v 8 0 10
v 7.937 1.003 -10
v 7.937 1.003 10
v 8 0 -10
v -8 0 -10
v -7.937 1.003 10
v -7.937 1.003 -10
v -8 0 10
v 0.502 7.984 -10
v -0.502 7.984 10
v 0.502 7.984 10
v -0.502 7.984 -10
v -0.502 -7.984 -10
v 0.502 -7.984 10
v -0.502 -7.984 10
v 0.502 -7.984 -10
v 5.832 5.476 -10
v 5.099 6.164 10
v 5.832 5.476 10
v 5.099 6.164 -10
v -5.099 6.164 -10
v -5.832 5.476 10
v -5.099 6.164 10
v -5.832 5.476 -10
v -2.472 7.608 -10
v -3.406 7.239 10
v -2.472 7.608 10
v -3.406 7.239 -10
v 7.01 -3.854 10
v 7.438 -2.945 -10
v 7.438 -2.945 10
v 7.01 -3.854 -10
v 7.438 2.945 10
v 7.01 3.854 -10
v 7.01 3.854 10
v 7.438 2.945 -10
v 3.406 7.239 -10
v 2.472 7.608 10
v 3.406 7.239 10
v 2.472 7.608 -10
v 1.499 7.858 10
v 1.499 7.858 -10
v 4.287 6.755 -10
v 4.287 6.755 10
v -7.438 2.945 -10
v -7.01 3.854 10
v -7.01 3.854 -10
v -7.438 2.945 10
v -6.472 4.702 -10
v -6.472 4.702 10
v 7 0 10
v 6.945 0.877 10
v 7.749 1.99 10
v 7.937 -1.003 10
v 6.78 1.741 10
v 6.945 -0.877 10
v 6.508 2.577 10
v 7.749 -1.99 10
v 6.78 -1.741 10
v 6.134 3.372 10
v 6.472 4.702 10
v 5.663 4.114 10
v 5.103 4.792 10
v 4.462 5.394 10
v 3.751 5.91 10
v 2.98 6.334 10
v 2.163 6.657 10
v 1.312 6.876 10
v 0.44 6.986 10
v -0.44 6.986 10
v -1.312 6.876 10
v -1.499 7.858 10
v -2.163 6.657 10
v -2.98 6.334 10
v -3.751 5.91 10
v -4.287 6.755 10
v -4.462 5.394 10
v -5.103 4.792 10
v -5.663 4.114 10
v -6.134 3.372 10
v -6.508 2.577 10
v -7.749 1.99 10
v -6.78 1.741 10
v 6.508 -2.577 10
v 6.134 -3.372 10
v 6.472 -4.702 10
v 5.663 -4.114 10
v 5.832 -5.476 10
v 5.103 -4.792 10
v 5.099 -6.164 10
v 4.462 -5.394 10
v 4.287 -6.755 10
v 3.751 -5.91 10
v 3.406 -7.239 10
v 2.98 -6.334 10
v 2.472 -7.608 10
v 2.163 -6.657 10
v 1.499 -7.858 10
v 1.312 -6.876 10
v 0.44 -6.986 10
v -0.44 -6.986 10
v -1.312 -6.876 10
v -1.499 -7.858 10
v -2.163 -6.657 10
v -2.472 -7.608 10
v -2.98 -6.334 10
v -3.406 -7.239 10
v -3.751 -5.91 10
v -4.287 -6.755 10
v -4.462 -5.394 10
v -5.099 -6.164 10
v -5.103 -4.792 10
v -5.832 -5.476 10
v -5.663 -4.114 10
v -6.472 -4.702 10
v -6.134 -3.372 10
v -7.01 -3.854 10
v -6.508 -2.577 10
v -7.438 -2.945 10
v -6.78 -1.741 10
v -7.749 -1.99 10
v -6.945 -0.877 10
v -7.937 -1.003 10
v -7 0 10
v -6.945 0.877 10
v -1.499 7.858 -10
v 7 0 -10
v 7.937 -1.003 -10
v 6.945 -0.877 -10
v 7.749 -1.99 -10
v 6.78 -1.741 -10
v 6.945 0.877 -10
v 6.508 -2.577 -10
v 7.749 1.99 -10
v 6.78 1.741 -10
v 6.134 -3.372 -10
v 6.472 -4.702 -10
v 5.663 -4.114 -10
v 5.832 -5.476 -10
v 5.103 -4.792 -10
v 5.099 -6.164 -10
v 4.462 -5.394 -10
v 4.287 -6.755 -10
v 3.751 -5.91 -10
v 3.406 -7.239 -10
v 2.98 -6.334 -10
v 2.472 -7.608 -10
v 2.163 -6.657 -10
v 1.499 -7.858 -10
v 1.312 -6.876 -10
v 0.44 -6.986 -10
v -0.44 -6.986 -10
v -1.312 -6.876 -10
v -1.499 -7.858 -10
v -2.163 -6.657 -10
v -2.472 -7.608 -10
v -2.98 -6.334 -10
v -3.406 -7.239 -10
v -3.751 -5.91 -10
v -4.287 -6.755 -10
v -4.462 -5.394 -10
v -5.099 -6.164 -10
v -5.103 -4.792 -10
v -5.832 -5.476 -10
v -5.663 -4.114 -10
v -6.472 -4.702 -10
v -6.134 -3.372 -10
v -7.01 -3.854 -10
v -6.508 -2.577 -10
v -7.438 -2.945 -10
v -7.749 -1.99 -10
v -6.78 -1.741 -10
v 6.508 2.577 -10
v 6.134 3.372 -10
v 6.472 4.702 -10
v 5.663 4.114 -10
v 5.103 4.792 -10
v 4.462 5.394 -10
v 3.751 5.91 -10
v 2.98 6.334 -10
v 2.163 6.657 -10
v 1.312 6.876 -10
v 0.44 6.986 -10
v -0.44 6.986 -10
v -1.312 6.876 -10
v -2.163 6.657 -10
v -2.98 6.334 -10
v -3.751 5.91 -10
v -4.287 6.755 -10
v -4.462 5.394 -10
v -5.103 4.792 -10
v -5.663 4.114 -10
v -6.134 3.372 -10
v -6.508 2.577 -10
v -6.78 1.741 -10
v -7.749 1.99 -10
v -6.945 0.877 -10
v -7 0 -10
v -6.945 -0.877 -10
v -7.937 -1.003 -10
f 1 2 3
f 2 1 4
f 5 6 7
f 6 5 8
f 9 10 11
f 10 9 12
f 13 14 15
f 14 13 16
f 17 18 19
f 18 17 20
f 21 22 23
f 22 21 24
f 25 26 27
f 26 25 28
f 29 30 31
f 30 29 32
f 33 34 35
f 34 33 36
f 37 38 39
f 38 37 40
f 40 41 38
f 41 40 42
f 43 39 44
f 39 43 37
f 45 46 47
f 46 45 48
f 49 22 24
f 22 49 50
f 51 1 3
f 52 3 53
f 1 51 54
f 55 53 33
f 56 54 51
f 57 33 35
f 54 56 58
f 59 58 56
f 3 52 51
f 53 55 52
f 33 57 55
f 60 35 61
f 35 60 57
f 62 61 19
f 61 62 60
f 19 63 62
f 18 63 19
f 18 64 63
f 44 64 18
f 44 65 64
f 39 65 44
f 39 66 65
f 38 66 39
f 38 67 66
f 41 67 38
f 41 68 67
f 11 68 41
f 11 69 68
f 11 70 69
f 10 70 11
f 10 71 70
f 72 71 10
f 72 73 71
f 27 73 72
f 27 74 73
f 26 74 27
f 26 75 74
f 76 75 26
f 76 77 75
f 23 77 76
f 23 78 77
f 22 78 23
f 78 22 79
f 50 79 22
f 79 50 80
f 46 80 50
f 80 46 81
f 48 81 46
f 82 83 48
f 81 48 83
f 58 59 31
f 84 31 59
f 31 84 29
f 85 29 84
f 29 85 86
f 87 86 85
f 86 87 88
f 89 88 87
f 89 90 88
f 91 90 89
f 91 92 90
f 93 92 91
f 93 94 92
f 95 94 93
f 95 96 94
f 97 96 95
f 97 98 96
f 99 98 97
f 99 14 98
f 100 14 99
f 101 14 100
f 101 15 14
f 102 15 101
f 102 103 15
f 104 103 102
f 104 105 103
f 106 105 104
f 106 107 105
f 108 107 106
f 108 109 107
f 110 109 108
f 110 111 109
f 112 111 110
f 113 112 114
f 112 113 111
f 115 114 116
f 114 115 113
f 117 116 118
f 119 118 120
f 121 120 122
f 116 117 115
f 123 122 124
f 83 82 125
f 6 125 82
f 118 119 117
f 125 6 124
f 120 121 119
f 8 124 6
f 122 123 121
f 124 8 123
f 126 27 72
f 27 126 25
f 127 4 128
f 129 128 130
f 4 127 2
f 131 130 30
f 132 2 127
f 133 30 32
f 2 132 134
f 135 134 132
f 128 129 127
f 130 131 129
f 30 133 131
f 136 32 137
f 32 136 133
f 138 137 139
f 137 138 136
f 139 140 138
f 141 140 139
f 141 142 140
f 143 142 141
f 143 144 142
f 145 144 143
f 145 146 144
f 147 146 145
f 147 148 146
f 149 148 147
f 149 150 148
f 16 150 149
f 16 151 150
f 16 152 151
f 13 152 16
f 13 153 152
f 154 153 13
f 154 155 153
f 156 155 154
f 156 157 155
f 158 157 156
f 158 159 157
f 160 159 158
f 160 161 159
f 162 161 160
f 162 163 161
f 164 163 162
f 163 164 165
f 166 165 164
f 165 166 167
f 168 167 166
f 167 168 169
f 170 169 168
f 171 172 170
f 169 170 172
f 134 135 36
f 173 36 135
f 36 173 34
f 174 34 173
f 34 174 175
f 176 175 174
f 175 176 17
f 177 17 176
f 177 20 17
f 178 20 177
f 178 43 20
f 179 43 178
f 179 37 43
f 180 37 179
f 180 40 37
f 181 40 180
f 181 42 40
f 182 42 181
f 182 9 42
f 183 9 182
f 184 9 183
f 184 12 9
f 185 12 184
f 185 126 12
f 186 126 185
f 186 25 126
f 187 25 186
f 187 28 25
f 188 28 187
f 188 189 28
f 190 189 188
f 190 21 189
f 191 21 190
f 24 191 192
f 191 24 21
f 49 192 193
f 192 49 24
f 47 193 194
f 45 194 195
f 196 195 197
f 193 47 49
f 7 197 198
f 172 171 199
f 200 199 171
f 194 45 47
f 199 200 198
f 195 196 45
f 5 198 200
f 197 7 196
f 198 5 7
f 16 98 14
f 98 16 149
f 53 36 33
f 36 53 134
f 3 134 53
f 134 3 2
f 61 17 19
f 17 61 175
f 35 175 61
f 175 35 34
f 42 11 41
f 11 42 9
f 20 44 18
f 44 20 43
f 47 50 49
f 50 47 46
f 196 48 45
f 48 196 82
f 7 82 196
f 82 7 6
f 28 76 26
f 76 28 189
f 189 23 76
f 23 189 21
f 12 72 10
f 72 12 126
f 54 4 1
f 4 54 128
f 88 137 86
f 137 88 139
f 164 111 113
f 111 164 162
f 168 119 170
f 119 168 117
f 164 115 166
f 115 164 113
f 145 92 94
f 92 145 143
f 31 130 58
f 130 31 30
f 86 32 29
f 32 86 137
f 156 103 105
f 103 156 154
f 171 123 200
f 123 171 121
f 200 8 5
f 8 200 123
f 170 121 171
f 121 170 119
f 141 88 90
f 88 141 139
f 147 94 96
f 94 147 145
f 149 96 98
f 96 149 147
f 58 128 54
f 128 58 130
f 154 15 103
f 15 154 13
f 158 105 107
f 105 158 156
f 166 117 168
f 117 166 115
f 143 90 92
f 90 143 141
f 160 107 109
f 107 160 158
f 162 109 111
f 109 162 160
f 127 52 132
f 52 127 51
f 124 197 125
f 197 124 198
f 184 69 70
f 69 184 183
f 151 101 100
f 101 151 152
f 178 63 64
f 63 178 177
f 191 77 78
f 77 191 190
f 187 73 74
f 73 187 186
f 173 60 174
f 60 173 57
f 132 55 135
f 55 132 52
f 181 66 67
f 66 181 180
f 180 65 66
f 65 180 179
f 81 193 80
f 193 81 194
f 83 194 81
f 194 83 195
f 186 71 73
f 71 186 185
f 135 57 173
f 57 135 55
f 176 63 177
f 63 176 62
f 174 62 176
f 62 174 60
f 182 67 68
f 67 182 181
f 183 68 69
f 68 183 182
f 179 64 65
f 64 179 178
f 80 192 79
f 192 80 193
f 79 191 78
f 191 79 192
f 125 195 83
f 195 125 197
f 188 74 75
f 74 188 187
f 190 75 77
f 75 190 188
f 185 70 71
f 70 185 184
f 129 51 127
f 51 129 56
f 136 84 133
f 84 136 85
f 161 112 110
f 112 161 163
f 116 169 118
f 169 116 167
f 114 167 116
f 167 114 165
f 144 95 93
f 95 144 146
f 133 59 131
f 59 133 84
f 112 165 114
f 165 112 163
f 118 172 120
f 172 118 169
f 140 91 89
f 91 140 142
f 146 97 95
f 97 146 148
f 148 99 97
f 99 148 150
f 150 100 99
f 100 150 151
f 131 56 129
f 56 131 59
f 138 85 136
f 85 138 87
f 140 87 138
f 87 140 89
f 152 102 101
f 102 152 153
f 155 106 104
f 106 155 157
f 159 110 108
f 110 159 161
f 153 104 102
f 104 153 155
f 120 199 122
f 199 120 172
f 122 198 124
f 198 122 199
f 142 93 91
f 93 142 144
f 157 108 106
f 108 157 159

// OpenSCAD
$fn = 50;


difference() {
	union() {
		translate(v = [0, 0, -10.0000000000]) {
			cylinder(h = 20, r = 8.0000000000);
		}
	}
	union() {
		translate(v = [0, 0, -100.0000000000]) {
			cylinder(h = 200, r = 7);
		}
	}
}
